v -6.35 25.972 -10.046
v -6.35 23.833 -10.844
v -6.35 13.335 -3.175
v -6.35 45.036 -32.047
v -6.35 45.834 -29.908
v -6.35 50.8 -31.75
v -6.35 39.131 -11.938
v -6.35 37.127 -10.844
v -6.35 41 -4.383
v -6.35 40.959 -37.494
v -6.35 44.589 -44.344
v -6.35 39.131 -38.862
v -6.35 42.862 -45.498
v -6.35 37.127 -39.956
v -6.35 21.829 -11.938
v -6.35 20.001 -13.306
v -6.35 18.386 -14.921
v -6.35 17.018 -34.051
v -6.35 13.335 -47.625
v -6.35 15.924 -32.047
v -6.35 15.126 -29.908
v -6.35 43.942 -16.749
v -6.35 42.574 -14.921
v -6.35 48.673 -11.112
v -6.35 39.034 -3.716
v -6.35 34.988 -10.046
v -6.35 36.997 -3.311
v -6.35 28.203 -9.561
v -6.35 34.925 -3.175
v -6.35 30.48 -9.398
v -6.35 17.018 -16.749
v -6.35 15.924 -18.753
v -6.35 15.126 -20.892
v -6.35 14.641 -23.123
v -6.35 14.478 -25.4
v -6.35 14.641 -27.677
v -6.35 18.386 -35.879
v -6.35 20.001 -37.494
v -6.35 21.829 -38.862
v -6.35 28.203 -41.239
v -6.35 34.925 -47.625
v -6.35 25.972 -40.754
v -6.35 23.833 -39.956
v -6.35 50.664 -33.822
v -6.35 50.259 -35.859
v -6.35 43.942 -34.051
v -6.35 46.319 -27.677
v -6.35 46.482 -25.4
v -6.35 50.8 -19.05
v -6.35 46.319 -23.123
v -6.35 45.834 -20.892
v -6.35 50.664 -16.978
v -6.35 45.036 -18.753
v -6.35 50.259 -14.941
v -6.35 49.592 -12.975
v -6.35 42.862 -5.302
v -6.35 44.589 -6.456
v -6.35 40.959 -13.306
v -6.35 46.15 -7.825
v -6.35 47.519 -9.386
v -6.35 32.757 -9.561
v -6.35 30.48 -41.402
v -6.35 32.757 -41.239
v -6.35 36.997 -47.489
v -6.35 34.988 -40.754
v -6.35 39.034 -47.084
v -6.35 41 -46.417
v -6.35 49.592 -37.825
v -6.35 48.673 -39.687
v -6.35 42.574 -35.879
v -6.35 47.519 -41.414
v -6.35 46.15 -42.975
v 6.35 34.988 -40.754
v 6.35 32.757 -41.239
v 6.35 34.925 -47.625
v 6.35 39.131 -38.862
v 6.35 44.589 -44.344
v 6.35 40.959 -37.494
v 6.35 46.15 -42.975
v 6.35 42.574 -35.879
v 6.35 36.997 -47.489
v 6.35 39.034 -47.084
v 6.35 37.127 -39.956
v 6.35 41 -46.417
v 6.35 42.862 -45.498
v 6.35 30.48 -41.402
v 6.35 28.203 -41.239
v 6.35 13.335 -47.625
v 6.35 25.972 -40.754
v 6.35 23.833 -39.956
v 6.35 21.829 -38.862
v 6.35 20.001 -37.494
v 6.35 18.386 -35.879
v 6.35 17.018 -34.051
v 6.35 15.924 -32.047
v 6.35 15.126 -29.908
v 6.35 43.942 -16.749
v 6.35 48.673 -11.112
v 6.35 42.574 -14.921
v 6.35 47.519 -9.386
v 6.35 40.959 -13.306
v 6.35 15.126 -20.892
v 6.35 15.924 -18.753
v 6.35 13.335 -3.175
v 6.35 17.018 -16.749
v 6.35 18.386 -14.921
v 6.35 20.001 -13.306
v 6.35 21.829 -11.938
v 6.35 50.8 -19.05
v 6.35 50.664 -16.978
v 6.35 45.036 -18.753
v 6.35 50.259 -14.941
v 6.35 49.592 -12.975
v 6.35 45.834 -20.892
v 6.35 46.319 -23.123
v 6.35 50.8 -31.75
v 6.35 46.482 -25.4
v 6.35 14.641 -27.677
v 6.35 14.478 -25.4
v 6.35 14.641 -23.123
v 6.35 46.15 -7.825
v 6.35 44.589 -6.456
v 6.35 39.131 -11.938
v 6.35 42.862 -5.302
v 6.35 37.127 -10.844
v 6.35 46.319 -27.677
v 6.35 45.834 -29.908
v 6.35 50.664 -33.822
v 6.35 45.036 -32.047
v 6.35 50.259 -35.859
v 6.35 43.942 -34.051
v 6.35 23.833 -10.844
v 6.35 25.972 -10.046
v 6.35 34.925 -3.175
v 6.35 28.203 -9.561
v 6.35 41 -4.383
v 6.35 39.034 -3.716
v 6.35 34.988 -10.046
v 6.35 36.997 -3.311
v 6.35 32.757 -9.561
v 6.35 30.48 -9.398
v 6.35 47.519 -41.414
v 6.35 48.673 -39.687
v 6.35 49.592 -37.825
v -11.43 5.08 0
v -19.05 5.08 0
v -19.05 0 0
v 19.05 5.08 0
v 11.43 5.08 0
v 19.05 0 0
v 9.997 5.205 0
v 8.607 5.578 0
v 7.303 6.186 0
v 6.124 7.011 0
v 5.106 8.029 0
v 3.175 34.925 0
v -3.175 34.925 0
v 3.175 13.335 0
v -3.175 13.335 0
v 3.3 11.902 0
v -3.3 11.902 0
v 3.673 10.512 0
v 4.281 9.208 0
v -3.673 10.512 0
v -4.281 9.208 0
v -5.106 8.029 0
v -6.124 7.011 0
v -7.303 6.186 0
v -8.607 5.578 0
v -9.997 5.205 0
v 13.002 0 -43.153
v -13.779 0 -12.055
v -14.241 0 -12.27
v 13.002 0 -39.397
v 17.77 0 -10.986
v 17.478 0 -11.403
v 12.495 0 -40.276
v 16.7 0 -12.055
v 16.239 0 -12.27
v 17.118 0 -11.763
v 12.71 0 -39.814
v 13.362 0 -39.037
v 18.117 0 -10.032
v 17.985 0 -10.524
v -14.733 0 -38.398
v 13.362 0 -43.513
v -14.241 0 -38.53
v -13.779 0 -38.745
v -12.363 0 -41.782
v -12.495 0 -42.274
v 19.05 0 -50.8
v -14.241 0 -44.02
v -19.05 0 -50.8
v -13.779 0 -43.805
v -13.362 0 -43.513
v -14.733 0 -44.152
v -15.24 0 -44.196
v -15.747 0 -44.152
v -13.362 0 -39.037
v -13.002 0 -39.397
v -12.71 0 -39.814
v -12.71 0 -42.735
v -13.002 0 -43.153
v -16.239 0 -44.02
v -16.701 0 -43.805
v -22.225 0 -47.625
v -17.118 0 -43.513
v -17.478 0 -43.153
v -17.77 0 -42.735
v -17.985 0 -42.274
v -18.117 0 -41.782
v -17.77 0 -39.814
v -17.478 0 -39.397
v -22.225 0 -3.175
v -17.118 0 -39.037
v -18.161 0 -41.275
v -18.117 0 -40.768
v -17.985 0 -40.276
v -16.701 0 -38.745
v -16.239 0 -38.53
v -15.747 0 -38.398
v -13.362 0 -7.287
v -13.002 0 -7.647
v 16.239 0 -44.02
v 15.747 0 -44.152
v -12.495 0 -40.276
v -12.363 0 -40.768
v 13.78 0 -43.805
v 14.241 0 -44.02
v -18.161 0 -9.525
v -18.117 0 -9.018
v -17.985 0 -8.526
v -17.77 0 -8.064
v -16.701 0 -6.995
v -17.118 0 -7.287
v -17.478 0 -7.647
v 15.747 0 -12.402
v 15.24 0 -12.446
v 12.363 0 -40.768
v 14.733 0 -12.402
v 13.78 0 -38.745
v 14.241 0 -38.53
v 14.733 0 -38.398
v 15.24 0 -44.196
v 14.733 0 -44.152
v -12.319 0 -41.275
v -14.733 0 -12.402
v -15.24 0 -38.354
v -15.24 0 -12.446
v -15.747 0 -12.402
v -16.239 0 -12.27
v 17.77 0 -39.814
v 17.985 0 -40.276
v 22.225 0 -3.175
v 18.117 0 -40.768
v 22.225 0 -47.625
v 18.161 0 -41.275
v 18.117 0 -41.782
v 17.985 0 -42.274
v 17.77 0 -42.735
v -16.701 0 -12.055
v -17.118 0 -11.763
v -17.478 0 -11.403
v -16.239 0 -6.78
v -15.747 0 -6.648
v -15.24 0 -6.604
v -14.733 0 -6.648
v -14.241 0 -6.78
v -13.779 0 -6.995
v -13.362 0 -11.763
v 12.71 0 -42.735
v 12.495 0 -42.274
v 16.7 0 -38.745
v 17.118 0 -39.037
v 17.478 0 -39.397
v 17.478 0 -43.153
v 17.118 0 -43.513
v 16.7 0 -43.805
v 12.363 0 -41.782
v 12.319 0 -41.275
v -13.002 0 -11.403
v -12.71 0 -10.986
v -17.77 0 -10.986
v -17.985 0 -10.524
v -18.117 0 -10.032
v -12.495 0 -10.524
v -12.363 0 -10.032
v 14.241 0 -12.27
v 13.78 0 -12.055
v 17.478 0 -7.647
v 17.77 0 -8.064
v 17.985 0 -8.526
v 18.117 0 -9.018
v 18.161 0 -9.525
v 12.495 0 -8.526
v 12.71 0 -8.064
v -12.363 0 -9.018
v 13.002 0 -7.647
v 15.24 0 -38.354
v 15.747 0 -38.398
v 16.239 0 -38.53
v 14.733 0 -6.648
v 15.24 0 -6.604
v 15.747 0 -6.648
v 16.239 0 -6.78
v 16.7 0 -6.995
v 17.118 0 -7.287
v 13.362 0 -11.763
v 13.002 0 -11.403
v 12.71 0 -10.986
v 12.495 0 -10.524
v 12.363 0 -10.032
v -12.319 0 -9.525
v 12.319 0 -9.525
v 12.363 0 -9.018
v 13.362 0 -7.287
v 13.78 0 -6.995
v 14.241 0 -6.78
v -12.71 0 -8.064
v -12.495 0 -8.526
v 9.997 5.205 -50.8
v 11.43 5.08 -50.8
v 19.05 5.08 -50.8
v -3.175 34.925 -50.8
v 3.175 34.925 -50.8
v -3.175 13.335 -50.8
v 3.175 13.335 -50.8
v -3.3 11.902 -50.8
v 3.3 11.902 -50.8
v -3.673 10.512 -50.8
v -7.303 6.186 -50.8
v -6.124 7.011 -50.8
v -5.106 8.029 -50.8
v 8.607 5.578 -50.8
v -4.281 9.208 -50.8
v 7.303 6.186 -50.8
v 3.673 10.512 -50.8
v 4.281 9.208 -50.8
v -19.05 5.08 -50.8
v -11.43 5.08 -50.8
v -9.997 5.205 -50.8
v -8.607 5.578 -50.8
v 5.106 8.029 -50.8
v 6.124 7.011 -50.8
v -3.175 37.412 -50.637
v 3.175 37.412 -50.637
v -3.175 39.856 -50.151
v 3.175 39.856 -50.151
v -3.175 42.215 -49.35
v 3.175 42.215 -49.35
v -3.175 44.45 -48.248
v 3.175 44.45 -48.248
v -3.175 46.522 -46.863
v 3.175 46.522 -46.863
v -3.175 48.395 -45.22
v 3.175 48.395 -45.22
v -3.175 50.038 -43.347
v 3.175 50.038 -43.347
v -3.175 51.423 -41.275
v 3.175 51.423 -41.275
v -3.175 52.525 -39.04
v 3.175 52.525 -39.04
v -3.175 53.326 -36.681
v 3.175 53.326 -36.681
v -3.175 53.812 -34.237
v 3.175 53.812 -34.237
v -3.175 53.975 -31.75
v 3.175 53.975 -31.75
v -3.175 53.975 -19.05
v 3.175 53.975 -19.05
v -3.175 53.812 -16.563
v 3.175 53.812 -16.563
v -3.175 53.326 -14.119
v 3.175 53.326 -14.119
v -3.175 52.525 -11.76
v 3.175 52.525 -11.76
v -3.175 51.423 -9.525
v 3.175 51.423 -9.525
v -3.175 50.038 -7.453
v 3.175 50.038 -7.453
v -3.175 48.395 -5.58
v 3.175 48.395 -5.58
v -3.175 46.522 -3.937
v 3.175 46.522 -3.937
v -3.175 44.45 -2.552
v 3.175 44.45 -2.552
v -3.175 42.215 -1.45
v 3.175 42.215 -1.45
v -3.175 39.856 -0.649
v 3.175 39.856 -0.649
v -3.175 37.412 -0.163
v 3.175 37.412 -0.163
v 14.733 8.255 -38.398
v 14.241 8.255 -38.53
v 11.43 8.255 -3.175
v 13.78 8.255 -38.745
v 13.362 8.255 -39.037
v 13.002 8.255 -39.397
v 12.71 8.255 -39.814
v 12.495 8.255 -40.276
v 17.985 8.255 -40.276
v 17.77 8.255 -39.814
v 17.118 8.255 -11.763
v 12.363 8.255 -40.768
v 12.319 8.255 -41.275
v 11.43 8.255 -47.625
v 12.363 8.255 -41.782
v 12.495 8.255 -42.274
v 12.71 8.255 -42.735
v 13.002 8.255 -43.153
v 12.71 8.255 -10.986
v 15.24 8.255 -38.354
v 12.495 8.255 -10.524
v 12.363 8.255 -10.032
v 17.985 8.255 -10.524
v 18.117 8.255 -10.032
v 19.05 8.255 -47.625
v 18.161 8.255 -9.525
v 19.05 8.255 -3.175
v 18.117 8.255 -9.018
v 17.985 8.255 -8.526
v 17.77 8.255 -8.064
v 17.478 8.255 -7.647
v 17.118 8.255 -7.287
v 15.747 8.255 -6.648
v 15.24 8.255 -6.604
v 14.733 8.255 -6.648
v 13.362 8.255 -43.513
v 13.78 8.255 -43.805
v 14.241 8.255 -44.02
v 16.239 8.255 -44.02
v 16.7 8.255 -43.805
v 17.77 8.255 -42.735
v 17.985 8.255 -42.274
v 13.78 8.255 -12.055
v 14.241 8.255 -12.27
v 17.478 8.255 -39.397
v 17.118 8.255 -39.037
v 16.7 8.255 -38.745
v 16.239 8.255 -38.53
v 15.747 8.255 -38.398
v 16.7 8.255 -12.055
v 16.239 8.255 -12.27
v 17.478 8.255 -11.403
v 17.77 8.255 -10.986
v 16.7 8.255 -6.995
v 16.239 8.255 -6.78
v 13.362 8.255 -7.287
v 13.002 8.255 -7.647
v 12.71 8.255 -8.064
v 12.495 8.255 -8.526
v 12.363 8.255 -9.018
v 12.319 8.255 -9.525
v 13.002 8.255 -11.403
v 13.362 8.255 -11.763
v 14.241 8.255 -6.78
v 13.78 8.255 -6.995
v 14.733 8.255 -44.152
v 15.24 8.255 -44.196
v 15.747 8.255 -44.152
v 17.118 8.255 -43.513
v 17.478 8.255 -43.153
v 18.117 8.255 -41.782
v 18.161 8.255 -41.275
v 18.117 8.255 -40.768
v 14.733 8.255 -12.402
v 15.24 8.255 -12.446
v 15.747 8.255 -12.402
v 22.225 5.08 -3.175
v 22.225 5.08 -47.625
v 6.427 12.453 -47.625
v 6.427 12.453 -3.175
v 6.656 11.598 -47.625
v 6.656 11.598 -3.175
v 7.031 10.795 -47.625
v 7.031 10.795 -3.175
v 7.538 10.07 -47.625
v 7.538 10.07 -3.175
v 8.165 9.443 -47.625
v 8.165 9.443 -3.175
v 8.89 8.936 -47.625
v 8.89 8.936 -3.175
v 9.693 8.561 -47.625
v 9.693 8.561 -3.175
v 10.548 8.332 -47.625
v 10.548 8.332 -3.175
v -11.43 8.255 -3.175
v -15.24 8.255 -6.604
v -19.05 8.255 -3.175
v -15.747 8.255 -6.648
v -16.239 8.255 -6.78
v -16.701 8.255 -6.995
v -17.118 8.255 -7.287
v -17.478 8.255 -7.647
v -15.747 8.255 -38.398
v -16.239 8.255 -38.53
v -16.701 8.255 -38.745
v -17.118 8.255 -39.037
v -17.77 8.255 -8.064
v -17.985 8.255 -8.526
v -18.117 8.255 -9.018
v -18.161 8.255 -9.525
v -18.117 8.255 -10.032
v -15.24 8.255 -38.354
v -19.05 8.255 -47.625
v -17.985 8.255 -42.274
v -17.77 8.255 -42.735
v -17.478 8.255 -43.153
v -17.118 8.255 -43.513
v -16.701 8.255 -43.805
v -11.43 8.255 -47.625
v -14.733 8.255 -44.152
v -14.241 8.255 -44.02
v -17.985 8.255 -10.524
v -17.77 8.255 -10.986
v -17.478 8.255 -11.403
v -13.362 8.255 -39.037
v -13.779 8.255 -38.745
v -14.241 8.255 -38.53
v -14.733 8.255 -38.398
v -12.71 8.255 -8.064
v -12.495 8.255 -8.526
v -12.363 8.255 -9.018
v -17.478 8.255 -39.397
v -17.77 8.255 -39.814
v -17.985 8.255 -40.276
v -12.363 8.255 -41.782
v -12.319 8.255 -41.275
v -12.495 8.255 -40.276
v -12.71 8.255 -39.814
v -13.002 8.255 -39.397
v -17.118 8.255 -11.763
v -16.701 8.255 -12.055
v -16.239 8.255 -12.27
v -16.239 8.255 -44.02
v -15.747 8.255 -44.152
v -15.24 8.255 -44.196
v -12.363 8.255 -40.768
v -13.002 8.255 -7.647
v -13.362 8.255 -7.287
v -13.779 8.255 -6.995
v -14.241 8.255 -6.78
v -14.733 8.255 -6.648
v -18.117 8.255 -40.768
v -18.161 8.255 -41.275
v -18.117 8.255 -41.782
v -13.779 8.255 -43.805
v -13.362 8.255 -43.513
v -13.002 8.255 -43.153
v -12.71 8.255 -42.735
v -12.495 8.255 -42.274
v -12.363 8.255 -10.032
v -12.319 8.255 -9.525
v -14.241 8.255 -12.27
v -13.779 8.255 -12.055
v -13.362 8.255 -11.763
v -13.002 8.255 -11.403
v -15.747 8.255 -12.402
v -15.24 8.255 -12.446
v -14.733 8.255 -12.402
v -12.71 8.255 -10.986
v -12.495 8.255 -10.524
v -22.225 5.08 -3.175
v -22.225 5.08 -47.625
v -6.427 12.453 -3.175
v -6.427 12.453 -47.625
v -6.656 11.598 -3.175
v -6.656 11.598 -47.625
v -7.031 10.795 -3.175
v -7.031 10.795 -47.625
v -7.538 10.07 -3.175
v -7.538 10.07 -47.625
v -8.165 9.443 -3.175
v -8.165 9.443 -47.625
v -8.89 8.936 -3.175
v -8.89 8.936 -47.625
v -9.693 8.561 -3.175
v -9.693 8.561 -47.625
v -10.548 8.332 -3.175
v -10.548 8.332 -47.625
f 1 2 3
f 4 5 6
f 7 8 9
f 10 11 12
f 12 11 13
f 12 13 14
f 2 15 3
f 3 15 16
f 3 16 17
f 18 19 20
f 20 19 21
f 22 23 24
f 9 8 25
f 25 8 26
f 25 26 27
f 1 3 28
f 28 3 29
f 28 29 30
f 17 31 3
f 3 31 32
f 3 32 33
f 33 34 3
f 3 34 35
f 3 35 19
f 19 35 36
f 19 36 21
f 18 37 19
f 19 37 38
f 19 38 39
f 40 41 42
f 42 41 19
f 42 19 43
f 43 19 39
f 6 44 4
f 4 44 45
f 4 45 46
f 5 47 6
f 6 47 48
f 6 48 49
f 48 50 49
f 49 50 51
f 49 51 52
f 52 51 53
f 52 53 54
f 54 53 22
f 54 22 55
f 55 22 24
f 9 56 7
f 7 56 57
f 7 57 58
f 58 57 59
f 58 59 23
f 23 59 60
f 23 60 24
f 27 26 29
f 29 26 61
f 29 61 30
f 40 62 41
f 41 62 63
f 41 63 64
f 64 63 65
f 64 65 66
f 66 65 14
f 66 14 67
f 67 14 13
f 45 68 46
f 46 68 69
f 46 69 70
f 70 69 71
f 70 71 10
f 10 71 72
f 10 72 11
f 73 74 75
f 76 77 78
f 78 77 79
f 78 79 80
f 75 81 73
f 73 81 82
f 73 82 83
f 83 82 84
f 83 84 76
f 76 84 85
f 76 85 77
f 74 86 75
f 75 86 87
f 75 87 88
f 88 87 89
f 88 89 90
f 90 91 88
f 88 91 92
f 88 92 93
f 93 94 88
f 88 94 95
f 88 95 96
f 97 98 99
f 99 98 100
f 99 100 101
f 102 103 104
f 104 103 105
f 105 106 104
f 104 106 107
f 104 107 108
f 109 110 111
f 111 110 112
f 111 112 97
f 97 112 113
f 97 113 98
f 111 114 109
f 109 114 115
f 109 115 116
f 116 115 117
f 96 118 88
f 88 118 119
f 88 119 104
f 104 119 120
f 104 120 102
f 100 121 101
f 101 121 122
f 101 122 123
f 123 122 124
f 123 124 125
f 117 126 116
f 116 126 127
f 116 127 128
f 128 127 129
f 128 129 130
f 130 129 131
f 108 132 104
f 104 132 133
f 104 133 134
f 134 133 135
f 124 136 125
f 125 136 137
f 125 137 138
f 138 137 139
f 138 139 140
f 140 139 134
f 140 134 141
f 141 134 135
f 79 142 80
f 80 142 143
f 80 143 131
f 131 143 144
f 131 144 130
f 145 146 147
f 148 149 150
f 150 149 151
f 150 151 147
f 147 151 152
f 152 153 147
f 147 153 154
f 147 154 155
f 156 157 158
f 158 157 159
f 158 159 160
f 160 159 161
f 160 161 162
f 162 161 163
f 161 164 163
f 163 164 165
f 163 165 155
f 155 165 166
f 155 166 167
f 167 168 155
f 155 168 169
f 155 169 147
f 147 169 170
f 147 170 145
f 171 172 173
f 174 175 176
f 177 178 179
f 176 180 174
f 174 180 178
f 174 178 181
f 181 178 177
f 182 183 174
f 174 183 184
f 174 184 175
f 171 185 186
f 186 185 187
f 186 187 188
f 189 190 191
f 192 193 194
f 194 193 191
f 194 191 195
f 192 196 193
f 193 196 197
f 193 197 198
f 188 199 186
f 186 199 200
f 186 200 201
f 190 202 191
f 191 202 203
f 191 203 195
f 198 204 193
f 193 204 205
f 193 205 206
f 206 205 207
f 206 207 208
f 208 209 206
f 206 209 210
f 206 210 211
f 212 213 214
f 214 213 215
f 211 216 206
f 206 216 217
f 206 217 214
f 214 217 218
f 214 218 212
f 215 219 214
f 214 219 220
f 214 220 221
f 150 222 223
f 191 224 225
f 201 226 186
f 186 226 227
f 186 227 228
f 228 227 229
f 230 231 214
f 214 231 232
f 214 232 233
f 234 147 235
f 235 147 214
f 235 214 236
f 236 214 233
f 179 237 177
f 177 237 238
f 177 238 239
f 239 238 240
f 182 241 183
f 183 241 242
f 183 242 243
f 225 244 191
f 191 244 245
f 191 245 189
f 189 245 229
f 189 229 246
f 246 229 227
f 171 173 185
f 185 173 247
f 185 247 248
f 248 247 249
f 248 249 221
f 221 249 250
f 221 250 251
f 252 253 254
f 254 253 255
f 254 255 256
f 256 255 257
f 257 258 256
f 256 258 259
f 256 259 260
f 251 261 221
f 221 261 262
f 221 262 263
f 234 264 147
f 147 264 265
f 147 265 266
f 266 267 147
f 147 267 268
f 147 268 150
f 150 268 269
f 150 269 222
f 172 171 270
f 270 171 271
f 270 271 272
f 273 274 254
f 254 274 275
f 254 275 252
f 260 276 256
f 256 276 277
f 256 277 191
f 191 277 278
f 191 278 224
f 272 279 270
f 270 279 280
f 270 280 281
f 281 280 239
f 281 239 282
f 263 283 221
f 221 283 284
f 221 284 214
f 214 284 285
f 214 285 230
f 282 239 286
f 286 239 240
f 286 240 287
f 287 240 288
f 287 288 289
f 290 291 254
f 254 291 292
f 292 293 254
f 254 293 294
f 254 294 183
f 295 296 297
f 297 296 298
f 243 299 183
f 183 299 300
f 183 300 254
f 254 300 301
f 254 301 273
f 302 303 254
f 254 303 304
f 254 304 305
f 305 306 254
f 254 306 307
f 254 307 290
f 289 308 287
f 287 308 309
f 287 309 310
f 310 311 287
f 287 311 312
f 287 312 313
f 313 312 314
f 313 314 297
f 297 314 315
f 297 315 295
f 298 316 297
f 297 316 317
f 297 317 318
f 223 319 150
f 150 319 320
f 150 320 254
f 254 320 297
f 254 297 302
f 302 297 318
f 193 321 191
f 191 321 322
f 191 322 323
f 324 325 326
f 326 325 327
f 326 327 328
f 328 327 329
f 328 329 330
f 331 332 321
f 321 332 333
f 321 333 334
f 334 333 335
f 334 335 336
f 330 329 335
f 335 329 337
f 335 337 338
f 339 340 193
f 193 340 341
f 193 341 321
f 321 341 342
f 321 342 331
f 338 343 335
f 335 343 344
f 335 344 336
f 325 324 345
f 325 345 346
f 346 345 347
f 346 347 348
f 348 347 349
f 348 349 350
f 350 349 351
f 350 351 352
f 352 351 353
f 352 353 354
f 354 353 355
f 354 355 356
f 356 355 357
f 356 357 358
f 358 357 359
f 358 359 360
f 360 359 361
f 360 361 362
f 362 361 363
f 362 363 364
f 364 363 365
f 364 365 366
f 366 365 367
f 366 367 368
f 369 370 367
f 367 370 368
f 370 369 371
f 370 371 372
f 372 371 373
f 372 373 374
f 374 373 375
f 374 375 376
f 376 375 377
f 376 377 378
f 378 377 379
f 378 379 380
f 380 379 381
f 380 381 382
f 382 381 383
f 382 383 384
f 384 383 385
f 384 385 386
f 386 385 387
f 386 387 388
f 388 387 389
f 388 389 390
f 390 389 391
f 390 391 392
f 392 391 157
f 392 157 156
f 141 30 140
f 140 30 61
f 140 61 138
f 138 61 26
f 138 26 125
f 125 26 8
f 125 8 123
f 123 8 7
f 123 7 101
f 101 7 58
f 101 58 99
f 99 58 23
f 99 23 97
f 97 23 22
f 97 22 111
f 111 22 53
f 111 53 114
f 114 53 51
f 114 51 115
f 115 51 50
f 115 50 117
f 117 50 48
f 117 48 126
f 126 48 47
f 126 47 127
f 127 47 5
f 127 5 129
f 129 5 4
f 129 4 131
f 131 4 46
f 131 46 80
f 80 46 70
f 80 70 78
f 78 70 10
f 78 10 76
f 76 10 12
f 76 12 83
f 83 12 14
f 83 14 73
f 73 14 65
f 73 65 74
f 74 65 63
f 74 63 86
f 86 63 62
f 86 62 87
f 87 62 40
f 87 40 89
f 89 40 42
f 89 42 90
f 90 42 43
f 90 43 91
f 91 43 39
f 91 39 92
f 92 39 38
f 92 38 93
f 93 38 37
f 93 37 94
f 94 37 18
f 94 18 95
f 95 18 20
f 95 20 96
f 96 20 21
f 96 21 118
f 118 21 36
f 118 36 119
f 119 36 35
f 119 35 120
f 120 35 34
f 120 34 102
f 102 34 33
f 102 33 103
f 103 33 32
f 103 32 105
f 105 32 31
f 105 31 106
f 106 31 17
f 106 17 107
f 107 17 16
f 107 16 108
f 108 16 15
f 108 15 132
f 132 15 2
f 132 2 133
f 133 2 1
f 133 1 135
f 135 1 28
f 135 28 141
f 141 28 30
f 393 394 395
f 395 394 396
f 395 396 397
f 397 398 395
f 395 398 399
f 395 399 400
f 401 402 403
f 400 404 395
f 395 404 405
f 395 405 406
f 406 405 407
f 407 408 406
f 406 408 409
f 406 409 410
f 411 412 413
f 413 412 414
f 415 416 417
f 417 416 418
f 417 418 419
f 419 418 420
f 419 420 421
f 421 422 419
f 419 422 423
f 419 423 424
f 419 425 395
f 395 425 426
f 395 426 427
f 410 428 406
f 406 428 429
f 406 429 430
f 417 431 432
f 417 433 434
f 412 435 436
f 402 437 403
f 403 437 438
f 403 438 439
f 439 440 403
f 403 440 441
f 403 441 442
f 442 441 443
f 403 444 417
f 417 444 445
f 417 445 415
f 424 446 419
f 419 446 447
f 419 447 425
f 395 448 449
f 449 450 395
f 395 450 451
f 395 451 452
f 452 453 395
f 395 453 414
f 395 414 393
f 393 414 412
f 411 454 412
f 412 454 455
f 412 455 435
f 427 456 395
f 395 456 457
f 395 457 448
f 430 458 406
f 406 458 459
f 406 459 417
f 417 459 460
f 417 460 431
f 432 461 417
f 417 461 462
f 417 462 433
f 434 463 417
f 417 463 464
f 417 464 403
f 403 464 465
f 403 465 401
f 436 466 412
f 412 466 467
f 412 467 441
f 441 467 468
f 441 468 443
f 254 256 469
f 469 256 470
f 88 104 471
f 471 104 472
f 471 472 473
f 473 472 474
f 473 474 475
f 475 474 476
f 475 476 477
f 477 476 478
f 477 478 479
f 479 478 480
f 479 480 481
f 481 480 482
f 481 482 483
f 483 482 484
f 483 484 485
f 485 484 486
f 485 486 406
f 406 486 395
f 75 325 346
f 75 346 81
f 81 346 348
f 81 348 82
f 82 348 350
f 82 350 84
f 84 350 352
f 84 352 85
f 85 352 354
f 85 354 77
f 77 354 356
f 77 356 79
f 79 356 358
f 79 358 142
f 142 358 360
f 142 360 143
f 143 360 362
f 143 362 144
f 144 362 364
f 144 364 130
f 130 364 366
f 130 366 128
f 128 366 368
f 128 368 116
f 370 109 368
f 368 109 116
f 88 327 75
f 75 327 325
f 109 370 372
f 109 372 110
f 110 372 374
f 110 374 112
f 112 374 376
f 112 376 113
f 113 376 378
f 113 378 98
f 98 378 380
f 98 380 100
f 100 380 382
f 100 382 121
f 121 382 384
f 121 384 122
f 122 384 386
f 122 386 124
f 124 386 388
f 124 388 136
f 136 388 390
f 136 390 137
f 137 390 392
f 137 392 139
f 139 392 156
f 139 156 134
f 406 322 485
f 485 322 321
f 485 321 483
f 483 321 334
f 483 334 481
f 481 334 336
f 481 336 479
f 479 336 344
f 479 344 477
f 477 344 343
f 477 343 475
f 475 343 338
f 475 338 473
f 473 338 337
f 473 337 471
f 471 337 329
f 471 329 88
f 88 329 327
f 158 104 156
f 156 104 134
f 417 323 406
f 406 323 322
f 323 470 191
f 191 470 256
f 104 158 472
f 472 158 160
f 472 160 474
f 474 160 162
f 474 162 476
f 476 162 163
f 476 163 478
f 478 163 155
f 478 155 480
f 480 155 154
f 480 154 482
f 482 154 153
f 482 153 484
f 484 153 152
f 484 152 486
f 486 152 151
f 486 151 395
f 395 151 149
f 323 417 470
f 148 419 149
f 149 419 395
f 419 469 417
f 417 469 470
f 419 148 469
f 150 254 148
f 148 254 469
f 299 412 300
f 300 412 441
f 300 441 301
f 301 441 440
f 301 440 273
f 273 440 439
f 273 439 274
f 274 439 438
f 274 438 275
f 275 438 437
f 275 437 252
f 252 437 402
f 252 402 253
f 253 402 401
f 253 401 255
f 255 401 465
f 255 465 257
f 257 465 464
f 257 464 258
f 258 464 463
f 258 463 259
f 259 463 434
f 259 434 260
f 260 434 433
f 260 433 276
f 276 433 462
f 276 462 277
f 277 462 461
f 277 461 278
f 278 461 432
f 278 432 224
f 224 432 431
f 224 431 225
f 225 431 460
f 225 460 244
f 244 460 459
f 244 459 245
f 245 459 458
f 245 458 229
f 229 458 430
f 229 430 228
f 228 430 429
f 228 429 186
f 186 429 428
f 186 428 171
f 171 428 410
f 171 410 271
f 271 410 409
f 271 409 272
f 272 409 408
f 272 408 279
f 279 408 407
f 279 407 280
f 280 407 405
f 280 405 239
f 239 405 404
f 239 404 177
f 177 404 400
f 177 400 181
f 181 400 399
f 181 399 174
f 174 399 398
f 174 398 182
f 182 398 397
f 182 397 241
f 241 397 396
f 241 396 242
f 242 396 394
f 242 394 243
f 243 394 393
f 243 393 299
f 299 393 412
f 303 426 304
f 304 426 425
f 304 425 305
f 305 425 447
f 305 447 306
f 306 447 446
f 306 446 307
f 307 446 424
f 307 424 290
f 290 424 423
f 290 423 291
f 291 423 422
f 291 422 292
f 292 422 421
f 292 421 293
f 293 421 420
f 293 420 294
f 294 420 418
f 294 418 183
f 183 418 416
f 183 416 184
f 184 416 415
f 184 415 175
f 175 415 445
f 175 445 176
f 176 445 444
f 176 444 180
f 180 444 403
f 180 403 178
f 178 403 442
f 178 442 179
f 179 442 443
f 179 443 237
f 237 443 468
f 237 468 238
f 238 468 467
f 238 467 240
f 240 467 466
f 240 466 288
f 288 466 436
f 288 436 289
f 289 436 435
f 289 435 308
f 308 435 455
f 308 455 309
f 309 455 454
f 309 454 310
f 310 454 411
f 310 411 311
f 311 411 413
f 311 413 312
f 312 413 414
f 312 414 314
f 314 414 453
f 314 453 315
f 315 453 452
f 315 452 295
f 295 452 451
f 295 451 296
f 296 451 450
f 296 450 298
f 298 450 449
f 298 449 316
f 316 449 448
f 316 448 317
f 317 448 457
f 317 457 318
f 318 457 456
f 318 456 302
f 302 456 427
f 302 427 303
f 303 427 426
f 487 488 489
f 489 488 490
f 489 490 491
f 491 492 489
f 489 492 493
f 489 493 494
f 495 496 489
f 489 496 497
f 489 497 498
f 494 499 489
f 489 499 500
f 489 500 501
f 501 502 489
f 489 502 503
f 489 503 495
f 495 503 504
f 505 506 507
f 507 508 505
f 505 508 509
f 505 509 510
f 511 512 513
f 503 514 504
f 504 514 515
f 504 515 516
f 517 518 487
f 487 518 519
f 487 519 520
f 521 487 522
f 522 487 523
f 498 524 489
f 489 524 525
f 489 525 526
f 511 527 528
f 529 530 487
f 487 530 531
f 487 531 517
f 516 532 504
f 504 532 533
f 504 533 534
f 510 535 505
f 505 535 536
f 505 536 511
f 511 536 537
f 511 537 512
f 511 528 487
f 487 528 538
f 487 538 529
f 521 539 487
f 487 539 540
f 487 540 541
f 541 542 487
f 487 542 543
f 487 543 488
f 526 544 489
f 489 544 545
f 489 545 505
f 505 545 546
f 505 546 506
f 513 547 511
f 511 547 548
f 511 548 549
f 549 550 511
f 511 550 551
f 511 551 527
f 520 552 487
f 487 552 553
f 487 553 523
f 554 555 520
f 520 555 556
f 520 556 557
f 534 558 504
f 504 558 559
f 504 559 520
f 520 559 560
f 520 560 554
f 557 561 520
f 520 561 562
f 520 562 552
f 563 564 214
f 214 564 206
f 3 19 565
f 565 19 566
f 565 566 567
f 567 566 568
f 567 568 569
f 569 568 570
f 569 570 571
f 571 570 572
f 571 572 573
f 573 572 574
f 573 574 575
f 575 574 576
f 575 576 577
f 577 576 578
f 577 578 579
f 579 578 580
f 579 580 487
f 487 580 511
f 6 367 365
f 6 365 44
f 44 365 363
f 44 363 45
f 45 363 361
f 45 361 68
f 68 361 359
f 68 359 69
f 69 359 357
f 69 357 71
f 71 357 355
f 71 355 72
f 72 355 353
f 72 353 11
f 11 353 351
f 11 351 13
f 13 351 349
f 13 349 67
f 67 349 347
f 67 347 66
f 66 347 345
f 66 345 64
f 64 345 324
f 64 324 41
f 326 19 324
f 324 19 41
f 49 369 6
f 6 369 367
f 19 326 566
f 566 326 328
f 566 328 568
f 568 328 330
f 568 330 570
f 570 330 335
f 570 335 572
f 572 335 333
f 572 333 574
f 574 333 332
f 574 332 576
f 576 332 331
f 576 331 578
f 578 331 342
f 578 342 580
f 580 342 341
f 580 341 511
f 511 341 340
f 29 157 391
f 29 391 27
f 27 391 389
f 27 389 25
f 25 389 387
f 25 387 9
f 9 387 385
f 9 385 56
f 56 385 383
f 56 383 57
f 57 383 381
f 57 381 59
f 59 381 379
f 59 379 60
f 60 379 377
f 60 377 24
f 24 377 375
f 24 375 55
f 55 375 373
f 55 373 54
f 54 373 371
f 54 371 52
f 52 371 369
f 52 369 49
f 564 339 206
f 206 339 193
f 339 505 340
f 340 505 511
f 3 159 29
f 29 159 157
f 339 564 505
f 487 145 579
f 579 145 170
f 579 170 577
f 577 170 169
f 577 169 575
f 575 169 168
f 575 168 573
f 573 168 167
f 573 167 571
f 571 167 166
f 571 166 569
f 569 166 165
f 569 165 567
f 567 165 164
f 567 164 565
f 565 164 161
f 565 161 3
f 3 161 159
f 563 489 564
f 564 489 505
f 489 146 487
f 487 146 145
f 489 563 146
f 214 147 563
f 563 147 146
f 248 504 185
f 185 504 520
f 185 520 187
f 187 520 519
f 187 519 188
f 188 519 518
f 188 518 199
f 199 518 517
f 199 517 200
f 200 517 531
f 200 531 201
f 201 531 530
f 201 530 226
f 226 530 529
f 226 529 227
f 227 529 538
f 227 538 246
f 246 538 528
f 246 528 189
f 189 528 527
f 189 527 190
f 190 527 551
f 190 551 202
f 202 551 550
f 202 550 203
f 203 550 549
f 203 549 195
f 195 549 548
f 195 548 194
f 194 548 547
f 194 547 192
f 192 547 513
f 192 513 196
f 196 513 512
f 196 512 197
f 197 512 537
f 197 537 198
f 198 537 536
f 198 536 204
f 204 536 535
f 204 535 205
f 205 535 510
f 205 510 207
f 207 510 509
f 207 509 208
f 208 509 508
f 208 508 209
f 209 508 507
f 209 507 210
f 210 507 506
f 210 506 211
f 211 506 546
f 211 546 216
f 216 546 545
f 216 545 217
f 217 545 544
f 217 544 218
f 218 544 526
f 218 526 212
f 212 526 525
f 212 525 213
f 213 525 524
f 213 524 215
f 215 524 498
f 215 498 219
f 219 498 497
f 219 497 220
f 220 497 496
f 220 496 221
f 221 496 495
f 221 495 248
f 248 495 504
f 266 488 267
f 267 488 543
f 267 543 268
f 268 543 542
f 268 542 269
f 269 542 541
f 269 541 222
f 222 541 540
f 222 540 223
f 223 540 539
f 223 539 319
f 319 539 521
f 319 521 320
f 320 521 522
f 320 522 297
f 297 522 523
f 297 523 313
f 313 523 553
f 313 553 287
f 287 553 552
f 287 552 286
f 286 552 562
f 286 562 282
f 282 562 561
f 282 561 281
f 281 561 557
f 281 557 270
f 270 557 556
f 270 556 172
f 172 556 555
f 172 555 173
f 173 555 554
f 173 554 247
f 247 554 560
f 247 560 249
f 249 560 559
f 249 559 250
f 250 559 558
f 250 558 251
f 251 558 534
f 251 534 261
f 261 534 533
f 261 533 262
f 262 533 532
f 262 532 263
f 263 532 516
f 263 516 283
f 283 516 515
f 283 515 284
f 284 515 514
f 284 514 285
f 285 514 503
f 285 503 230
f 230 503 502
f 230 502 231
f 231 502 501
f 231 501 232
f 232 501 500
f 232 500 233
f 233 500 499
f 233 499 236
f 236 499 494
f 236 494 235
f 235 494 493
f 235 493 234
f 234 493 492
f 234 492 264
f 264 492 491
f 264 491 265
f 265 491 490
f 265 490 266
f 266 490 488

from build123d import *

# Parameters (mm, degrees)
SKETCH1_R                = 16.002
BOSS_EXTRUDE1_DEPTH      = 6.35
SKETCH2_W                = 50.8
SKETCH2_H                = 8.255
BOSS_EXTRUDE2_DEPTH      = 15.875
FILLET1_R                = 5.08
CHAMFER1_SIZE            = 3.175
SKETCH3_R                = 2.921
CUT_EXTRUDE1_DEPTH       = 72.867301501
FILLET1_OF_MIRROR2_R     = 5.08
CHAMFER1_OF_MIRROR2_SIZE = 3.175


with BuildPart() as part:
    # Sketch1 → Boss-Extrude1 (new body)
    with BuildSketch(Plane(origin=(0, 0, 0), x_dir=(0, 0, -1), z_dir=(1, 0, 0))):
        with BuildLine():
            Line((0, 0), (50.8, 0))
            Line((50.8, 0), (50.8, 34.925))
            ThreePointArc((50.8, 34.925), (45.220384182, 48.395384182), (31.75, 53.975))
            Line((31.75, 53.975), (19.05, 53.975))
            ThreePointArc((19.05, 53.975), (5.579615818, 48.395384182), (0, 34.925))
            Line((0, 34.925), (0, 0))
        make_face()
        with Locations((25.4, 30.48)):
            Circle(SKETCH1_R, mode=Mode.SUBTRACT)
    boss_extrude1 = extrude(amount=BOSS_EXTRUDE1_DEPTH)

    # Sketch2 → Boss-Extrude2 (add)
    with BuildSketch(Plane(origin=(6.35, 0, 0), x_dir=(0, 0, -1), z_dir=(1, 0, 0))):
        with Locations((25.4, 4.1275)):
            Rectangle(SKETCH2_W, SKETCH2_H)
    boss_extrude2 = extrude(amount=BOSS_EXTRUDE2_DEPTH)

    # Fillet1
    fillet1_edges = [part.edges().sort_by_distance(p)[0] for p in [
        (6.35, 8.255, -25.4),
    ]]
    fillet(fillet1_edges, radius=FILLET1_R)

    # Chamfer1
    chamfer1_edges = [part.edges().sort_by_distance(p)[0] for p in [
        (22.225, 4.1275, 0),
        (22.225, 8.255, -25.4),
        (16.8275, 8.255, 0),
        (7.837897552, 9.742897552, 0),
        (6.35, 24.13, 0),
        (6.35, 48.395384182, -5.579615818),
        (6.35, 53.975, -25.4),
        (6.35, 48.395384182, -45.220384182),
        (6.35, 24.13, -50.8),
        (7.837897552, 9.742897552, -50.8),
        (16.8275, 8.255, -50.8),
        (22.225, 4.1275, -50.8),
    ]]
    chamfer(chamfer1_edges, length=CHAMFER1_SIZE)

    # Sketch3 → Cut-Extrude1 (cut, through all)
    with BuildSketch(Plane(origin=(0, 8.255, 0), x_dir=(1, 0, 0), z_dir=(0, 1, 0))):
        with Locations((15.24, 9.525)):
            Circle(SKETCH3_R)
        with Locations((15.24, 41.275)):
            Circle(SKETCH3_R)
    cut_extrude1 = extrude(amount=-CUT_EXTRUDE1_DEPTH, mode=Mode.SUBTRACT)

    # Mirror2: Boss-Extrude1, Boss-Extrude2, Cut-Extrude1 across plane
    add(boss_extrude1.mirror(Plane(origin=(0, 34.925, -19.05), x_dir=(0, 0, 1), z_dir=(1, 0, 0))))
    add(boss_extrude2.mirror(Plane(origin=(0, 34.925, -19.05), x_dir=(0, 0, 1), z_dir=(1, 0, 0))))
    add(cut_extrude1.mirror(Plane(origin=(0, 34.925, -19.05), x_dir=(0, 0, 1), z_dir=(1, 0, 0))), mode=Mode.SUBTRACT)

    # Fillet1 of Mirror2
    fillet1_of_mirror2_edges = [part.edges().sort_by_distance(p)[0] for p in [
        (-6.35, 8.255, -25.4),
    ]]
    fillet(fillet1_of_mirror2_edges, radius=FILLET1_OF_MIRROR2_R)

    # Chamfer1 of Mirror2
    chamfer1_of_mirror2_edges = [part.edges().sort_by_distance(p)[0] for p in [
        (-22.225, 4.1275, 0),
        (-22.225, 8.255, -25.4),
        (-16.8275, 8.255, 0),
        (-7.837897552, 9.742897552, 0),
        (-6.35, 24.13, 0),
        (-6.35, 48.395384182, -5.579615818),
        (-6.35, 53.975, -25.4),
        (-6.35, 48.395384182, -45.220384182),
        (-6.35, 24.13, -50.8),
        (-7.837897552, 9.742897552, -50.8),
        (-16.8275, 8.255, -50.8),
        (-22.225, 4.1275, -50.8),
    ]]
    chamfer(chamfer1_of_mirror2_edges, length=CHAMFER1_OF_MIRROR2_SIZE)


solid = part.part
